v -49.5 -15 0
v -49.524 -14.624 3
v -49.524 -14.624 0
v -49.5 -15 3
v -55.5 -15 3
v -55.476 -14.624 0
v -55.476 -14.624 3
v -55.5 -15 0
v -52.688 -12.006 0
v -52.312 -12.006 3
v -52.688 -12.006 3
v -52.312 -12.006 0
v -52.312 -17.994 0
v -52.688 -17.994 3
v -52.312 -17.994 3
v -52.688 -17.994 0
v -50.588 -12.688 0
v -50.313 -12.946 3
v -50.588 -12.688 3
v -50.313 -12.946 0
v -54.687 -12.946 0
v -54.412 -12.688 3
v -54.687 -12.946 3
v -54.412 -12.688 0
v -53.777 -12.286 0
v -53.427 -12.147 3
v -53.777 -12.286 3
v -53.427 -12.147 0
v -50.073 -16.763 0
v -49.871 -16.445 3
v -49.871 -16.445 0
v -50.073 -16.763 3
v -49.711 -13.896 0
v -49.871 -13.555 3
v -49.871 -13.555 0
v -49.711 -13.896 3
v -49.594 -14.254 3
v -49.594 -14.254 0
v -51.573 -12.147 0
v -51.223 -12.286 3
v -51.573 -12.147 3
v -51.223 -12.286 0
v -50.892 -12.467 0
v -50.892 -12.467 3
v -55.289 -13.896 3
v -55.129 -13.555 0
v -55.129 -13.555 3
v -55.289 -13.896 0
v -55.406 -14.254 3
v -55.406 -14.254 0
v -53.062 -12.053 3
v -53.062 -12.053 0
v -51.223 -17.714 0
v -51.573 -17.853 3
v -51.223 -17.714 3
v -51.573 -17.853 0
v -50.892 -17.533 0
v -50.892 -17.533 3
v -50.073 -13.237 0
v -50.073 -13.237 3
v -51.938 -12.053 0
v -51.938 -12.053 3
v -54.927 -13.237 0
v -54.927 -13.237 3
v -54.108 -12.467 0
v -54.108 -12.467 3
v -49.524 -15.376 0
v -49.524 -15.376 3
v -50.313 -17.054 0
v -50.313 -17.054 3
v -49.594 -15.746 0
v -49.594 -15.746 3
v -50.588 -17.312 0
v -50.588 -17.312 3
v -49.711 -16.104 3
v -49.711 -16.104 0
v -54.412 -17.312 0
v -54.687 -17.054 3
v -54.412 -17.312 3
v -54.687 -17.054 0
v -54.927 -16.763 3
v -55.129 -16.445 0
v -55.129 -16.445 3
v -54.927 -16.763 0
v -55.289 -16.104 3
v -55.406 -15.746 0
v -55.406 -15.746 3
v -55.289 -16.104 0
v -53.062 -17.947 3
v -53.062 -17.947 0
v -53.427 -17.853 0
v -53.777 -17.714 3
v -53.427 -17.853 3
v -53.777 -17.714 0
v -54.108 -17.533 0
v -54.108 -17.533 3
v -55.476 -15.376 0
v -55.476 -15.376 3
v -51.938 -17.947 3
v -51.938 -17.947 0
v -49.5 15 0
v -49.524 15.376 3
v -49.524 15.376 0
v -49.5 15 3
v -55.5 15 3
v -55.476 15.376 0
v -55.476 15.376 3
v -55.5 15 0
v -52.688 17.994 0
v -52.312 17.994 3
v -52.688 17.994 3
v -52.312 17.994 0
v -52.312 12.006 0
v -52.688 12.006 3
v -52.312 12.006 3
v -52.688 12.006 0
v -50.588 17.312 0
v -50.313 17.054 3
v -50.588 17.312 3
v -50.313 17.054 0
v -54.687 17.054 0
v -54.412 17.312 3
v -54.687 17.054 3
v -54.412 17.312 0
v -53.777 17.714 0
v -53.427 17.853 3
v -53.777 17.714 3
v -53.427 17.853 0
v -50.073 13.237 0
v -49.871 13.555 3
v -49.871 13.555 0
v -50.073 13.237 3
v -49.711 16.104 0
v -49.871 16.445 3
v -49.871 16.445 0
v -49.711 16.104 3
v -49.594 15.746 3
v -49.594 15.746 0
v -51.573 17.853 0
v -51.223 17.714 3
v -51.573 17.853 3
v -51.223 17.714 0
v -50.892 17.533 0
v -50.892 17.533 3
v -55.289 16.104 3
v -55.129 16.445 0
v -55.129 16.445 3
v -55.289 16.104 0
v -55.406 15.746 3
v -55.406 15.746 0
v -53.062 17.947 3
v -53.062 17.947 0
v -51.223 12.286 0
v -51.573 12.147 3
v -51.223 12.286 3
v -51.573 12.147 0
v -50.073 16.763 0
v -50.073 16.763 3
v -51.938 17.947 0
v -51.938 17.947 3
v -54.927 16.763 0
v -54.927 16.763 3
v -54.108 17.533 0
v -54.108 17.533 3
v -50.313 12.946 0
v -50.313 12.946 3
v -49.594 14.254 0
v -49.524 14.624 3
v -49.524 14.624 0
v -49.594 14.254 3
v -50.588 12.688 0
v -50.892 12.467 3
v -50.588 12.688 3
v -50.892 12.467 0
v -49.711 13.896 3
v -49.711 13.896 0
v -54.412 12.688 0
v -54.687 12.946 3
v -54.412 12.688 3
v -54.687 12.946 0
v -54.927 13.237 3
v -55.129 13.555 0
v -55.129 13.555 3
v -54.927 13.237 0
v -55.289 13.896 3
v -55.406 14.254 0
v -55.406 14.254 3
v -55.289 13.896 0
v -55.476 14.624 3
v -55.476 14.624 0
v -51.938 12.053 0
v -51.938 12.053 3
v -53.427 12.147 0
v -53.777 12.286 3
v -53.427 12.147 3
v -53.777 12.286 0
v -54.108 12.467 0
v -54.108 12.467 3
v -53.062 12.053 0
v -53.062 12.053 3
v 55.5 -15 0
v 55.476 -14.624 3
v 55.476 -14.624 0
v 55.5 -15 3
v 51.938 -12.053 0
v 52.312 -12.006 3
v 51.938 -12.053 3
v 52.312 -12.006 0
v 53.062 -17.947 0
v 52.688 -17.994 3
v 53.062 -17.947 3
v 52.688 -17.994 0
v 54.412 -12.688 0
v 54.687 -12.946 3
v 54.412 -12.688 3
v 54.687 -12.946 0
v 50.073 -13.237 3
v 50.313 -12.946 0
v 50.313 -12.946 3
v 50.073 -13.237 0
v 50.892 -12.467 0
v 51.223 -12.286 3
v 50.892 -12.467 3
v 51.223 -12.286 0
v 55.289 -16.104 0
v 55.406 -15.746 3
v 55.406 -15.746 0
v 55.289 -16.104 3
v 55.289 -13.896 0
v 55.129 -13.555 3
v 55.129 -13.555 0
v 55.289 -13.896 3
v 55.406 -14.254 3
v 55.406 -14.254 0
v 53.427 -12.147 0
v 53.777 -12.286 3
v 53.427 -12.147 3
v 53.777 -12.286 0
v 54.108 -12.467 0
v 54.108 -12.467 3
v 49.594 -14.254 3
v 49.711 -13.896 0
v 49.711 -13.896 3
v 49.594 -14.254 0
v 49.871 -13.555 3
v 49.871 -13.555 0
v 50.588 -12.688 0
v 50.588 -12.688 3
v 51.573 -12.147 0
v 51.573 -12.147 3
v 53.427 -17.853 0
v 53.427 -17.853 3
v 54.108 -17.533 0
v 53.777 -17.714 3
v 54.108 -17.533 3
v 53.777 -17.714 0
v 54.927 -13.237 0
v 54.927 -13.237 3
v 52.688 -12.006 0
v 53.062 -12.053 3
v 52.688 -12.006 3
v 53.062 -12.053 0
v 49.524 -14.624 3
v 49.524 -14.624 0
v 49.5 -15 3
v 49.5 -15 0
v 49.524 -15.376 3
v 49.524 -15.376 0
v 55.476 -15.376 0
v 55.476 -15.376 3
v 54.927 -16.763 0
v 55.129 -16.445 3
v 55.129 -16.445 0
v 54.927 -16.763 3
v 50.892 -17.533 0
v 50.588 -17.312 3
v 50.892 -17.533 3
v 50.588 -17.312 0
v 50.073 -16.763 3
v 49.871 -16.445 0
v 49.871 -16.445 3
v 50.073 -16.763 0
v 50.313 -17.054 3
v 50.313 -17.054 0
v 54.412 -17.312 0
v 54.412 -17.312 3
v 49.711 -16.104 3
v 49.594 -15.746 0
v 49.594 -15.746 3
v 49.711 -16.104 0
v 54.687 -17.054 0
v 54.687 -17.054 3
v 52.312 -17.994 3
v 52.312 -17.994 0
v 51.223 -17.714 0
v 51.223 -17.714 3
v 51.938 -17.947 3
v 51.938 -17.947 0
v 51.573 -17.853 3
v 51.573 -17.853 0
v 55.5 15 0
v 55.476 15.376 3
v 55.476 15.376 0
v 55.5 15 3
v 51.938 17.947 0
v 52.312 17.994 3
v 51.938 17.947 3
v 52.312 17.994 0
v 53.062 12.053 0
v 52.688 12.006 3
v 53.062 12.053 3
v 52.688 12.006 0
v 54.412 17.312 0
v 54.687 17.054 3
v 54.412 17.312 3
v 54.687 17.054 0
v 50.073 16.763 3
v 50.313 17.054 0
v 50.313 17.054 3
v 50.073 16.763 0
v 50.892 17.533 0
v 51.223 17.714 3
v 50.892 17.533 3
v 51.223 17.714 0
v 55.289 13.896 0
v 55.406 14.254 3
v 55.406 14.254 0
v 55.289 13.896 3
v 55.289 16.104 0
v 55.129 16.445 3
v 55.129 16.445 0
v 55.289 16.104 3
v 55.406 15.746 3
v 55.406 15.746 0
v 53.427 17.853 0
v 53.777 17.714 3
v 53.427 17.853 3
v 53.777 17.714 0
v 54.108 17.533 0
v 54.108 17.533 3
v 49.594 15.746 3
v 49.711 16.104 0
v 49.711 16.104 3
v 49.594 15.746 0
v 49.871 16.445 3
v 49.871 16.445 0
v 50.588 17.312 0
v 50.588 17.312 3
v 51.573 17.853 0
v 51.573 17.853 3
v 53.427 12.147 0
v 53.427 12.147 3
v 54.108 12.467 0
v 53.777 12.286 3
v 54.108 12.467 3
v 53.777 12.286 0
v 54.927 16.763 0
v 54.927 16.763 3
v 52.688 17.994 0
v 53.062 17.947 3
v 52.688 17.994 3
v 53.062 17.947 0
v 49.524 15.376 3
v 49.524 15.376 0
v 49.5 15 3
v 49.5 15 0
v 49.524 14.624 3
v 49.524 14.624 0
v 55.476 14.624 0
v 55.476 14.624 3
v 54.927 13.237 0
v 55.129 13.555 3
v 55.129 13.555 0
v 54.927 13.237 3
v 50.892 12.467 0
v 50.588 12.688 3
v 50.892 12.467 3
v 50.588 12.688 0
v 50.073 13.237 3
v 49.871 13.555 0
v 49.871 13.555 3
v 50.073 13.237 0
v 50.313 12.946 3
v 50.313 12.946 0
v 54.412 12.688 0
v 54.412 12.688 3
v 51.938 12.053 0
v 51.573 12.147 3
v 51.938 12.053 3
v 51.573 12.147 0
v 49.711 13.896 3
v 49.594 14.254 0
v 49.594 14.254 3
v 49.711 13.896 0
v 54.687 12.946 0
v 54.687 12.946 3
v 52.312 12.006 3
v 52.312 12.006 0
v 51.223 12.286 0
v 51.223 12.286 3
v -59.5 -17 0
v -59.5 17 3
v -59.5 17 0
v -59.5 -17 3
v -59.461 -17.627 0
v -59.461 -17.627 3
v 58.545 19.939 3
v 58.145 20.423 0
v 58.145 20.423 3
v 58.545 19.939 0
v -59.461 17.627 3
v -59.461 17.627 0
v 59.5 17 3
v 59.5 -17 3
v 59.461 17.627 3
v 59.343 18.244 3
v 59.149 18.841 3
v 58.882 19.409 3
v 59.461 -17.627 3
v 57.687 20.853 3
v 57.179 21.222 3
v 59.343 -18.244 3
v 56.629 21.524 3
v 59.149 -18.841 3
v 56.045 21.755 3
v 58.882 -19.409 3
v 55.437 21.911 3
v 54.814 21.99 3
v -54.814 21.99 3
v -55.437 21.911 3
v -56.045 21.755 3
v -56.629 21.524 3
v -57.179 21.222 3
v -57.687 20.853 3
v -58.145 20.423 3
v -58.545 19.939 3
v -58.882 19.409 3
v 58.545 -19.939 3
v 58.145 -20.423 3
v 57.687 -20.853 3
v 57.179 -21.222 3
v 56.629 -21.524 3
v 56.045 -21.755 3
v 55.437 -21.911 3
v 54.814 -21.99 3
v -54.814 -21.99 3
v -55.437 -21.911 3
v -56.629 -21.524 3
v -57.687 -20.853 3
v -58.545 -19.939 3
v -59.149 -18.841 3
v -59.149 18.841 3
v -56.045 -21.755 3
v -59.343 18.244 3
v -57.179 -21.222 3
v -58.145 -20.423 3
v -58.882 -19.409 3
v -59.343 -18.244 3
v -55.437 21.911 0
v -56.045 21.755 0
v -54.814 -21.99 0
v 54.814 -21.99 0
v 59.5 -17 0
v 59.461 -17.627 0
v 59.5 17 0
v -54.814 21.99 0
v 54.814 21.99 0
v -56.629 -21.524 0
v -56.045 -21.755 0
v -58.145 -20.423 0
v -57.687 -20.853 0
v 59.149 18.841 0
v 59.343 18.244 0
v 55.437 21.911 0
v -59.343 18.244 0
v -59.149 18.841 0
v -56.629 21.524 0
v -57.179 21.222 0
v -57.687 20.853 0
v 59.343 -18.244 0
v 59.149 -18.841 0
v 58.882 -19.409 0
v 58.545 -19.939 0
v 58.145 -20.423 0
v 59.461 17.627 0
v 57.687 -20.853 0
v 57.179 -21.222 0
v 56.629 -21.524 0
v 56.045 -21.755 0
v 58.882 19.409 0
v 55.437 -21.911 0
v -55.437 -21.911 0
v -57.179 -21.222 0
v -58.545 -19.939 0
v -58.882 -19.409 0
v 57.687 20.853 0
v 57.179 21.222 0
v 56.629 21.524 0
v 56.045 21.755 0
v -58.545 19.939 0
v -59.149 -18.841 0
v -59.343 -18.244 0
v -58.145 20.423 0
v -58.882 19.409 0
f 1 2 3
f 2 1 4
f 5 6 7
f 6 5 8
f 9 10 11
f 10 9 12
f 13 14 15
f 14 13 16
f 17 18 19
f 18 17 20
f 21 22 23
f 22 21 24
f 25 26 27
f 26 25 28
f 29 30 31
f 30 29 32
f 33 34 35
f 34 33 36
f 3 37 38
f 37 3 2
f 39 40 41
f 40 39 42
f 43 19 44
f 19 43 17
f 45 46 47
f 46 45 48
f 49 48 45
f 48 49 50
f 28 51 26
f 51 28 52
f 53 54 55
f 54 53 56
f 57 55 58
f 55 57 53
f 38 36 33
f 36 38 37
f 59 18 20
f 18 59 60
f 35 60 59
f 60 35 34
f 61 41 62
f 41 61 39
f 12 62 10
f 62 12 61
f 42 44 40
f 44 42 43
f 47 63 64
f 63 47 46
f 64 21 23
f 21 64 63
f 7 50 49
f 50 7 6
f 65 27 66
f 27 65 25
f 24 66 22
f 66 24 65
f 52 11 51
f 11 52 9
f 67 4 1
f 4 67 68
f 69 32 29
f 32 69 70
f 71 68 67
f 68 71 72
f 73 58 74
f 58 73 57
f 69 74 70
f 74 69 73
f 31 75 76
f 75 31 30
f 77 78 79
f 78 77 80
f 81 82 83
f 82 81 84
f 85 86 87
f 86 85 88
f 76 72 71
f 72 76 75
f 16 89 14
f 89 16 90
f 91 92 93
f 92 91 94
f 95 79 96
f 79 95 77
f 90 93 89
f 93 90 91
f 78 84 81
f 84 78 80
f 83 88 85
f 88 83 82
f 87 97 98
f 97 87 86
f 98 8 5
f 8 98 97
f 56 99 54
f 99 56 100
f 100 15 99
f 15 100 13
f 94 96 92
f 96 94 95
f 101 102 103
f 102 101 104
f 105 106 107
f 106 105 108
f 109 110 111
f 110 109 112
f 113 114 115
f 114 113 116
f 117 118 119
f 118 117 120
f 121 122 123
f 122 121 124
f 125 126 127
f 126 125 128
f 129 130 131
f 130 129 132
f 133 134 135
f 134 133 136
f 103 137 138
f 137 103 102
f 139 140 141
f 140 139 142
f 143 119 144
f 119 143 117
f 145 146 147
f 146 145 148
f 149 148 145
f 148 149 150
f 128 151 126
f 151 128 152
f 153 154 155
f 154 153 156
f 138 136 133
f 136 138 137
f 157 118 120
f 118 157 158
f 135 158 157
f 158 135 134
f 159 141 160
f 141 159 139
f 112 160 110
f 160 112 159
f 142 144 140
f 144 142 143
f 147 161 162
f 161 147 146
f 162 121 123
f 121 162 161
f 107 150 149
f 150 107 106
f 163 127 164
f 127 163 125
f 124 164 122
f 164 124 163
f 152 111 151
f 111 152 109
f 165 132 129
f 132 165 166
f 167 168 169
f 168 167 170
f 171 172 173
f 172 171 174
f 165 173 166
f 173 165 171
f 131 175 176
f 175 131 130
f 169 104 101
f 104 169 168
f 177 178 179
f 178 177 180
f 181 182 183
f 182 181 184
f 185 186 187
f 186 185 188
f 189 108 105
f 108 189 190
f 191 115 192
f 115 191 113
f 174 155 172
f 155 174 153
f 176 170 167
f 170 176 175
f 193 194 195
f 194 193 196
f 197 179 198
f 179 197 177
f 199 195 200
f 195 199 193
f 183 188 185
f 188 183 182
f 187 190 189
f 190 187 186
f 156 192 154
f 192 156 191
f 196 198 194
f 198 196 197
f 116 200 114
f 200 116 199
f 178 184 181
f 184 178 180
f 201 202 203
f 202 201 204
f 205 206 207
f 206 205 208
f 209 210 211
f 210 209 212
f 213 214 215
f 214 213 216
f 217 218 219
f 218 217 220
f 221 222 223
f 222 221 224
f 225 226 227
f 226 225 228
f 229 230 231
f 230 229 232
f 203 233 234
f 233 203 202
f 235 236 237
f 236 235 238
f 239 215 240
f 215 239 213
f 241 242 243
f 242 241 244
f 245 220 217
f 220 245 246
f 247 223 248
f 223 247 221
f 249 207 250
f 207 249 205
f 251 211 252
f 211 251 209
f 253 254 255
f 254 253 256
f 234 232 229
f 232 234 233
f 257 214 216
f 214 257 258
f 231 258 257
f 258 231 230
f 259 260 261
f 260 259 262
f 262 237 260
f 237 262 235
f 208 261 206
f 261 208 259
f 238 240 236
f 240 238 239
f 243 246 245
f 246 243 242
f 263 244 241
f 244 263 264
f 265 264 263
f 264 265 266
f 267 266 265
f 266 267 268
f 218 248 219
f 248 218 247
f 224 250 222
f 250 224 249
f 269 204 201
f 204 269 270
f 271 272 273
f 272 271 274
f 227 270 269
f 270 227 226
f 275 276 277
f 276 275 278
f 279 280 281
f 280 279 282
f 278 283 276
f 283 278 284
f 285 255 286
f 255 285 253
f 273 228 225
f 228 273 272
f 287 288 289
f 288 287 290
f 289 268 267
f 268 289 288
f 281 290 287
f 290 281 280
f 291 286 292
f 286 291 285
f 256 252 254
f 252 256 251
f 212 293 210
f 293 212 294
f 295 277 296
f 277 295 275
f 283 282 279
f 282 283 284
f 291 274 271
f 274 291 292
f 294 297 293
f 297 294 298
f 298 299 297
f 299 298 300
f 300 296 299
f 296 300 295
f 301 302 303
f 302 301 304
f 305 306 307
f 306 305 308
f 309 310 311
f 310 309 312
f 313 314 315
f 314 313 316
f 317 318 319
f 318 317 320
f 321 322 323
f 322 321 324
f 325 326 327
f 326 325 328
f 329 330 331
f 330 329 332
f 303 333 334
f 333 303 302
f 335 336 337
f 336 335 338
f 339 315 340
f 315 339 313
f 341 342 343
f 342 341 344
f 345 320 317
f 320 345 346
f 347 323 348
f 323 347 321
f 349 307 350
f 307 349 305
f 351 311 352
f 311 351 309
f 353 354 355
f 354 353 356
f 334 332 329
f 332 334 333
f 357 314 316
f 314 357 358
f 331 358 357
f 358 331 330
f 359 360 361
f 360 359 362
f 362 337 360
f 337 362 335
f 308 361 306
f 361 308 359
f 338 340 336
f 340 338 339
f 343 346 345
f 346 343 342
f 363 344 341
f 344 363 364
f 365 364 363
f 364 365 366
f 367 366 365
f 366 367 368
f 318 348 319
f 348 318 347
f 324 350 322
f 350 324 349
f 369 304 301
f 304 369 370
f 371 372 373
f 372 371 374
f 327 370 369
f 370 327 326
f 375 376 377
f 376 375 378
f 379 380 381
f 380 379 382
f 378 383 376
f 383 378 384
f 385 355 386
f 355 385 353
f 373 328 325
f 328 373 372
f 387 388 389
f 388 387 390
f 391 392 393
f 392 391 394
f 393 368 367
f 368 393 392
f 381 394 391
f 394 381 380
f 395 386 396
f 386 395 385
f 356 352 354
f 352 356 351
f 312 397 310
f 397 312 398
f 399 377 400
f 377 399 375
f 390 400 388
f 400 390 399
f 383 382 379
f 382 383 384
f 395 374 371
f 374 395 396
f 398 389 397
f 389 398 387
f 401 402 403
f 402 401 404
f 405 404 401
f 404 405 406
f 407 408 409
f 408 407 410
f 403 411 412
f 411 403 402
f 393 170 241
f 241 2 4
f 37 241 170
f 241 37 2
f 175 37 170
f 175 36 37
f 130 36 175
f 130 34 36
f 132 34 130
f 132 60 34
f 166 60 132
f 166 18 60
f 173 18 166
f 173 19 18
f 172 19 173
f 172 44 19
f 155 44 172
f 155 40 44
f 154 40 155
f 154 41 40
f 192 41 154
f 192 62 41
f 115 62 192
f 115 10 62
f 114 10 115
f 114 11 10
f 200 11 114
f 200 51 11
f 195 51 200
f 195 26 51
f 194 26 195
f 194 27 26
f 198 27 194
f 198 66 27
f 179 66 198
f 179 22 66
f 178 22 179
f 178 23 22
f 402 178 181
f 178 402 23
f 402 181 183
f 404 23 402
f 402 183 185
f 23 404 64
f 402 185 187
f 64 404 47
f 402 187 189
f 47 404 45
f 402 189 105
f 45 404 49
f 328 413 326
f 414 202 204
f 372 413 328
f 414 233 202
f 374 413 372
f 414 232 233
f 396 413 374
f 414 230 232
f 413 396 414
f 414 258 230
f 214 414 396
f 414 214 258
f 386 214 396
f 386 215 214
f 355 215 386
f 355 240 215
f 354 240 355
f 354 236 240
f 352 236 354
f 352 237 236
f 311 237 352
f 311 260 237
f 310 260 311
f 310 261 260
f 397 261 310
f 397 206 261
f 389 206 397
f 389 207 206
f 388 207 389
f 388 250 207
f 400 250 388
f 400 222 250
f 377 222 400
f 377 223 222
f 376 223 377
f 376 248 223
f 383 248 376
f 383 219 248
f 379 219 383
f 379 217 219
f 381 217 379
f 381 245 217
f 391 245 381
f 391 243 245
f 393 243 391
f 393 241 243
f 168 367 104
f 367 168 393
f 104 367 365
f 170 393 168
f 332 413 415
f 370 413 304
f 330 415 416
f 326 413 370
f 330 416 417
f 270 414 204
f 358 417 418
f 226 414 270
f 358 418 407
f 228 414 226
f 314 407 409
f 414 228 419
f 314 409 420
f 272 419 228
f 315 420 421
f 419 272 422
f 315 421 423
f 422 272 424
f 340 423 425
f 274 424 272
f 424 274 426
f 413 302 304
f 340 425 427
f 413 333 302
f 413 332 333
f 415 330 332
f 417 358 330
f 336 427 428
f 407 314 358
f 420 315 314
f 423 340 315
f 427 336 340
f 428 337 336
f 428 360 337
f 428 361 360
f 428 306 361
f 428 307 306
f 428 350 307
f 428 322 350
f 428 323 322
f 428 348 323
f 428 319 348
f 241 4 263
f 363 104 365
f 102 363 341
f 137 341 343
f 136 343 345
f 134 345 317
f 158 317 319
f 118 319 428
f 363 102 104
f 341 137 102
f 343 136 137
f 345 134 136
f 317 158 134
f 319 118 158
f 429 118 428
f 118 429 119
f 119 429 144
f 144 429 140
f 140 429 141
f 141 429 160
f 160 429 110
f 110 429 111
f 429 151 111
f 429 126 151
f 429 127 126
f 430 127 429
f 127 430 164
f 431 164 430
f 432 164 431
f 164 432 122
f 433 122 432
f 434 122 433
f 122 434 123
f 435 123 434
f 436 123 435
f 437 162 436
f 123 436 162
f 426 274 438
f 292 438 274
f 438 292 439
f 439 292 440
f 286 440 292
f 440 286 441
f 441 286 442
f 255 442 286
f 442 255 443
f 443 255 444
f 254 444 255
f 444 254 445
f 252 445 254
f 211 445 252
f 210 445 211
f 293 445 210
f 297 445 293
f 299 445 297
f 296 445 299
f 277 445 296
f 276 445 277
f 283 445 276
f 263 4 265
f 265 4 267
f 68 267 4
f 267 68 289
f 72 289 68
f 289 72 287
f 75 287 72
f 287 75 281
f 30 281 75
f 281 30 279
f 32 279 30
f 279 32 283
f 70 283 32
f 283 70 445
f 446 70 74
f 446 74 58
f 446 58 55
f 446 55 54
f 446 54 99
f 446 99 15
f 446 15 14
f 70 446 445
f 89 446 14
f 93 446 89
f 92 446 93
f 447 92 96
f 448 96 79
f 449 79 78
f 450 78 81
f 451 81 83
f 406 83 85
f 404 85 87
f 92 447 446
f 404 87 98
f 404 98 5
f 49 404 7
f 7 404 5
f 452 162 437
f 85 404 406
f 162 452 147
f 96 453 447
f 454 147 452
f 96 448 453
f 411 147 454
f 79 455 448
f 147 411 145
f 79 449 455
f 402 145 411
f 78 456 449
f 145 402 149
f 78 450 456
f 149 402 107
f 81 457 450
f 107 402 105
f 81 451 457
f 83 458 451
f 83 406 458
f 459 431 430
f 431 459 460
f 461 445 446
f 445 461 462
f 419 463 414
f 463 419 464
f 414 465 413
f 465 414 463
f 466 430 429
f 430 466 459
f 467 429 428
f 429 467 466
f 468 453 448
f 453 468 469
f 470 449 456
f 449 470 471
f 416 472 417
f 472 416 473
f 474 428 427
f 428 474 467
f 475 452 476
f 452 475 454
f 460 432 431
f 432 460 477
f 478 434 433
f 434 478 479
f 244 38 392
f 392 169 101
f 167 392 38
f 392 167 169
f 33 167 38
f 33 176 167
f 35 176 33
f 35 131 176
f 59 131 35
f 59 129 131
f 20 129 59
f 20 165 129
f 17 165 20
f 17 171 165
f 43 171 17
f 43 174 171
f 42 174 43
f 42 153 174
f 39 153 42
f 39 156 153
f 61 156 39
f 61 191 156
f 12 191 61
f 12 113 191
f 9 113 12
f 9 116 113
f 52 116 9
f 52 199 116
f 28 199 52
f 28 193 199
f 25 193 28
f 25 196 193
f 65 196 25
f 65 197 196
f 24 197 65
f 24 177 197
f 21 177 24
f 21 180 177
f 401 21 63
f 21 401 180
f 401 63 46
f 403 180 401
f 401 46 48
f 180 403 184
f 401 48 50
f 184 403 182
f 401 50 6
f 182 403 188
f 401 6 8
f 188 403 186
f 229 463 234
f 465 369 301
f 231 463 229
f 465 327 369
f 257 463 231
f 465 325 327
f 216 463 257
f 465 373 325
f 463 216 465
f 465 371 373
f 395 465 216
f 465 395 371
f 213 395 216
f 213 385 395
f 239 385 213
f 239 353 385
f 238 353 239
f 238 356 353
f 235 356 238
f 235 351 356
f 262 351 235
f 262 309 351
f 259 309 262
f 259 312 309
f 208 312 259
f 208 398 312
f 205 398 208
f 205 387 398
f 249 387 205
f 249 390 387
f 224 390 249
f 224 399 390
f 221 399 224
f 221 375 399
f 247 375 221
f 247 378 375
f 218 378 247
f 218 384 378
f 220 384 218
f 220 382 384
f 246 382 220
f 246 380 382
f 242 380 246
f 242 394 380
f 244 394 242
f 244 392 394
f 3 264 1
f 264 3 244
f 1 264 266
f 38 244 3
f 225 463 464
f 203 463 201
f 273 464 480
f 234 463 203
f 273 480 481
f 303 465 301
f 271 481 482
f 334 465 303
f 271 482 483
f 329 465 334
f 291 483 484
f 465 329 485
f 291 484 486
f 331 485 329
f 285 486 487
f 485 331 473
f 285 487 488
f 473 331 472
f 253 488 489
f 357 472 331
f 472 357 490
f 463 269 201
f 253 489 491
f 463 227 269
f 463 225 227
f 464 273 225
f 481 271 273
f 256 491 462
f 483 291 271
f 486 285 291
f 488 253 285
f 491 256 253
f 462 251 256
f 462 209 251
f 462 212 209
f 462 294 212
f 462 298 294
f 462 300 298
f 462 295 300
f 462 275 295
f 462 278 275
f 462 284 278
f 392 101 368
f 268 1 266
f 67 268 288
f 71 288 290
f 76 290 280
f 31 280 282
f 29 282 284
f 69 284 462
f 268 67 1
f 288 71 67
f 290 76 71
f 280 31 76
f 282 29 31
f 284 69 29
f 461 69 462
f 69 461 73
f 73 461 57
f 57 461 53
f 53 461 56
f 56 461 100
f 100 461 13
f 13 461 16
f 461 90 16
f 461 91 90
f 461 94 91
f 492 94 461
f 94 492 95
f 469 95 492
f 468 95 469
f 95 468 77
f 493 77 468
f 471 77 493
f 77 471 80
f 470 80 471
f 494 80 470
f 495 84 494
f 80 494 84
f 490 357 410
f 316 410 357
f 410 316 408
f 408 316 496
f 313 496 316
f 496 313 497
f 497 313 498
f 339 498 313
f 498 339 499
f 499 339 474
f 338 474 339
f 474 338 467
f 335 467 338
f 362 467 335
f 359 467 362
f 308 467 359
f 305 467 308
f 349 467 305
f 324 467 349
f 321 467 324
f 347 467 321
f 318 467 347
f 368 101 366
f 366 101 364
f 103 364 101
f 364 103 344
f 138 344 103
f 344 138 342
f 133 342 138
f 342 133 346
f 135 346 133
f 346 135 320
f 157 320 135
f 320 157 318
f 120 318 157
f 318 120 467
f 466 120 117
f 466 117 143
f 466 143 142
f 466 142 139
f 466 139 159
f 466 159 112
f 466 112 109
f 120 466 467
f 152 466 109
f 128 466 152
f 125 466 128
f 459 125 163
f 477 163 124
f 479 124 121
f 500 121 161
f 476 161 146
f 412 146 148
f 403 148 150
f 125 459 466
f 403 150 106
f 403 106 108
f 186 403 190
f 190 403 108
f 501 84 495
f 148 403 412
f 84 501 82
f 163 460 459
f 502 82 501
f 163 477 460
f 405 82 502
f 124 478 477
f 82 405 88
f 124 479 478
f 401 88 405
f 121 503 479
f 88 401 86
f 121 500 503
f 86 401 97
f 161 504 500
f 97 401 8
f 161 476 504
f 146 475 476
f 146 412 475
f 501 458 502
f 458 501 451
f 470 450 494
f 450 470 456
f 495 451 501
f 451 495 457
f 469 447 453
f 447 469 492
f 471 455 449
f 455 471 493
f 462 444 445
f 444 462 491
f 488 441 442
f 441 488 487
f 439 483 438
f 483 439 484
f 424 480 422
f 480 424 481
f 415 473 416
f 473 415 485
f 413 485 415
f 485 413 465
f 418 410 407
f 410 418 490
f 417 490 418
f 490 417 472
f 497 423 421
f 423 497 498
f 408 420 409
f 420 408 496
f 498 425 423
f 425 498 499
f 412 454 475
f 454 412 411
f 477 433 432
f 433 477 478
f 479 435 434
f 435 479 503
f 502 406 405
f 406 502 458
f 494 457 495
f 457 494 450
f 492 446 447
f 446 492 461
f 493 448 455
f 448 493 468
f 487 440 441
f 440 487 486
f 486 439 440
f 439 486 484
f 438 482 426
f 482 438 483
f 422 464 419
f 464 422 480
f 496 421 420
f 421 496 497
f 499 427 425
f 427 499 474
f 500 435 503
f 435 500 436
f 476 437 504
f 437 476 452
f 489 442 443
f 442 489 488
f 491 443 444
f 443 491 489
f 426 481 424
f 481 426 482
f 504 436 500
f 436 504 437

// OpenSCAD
$fn = 50;


difference() {
	union() {
		hull() {
			translate(v = [-54.5000000000, 17.0000000000, 0]) {
				cylinder(h = 3, r = 5);
			}
			translate(v = [54.5000000000, 17.0000000000, 0]) {
				cylinder(h = 3, r = 5);
			}
			translate(v = [-54.5000000000, -17.0000000000, 0]) {
				cylinder(h = 3, r = 5);
			}
			translate(v = [54.5000000000, -17.0000000000, 0]) {
				cylinder(h = 3, r = 5);
			}
		}
	}
	union() {
		translate(v = [-52.5000000000, -15.0000000000, -100.0000000000]) {
			cylinder(h = 200, r = 3.0000000000);
		}
		translate(v = [-52.5000000000, 15.0000000000, -100.0000000000]) {
			cylinder(h = 200, r = 3.0000000000);
		}
		translate(v = [52.5000000000, -15.0000000000, -100.0000000000]) {
			cylinder(h = 200, r = 3.0000000000);
		}
		translate(v = [52.5000000000, 15.0000000000, -100.0000000000]) {
			cylinder(h = 200, r = 3.0000000000);
		}
	}
}
